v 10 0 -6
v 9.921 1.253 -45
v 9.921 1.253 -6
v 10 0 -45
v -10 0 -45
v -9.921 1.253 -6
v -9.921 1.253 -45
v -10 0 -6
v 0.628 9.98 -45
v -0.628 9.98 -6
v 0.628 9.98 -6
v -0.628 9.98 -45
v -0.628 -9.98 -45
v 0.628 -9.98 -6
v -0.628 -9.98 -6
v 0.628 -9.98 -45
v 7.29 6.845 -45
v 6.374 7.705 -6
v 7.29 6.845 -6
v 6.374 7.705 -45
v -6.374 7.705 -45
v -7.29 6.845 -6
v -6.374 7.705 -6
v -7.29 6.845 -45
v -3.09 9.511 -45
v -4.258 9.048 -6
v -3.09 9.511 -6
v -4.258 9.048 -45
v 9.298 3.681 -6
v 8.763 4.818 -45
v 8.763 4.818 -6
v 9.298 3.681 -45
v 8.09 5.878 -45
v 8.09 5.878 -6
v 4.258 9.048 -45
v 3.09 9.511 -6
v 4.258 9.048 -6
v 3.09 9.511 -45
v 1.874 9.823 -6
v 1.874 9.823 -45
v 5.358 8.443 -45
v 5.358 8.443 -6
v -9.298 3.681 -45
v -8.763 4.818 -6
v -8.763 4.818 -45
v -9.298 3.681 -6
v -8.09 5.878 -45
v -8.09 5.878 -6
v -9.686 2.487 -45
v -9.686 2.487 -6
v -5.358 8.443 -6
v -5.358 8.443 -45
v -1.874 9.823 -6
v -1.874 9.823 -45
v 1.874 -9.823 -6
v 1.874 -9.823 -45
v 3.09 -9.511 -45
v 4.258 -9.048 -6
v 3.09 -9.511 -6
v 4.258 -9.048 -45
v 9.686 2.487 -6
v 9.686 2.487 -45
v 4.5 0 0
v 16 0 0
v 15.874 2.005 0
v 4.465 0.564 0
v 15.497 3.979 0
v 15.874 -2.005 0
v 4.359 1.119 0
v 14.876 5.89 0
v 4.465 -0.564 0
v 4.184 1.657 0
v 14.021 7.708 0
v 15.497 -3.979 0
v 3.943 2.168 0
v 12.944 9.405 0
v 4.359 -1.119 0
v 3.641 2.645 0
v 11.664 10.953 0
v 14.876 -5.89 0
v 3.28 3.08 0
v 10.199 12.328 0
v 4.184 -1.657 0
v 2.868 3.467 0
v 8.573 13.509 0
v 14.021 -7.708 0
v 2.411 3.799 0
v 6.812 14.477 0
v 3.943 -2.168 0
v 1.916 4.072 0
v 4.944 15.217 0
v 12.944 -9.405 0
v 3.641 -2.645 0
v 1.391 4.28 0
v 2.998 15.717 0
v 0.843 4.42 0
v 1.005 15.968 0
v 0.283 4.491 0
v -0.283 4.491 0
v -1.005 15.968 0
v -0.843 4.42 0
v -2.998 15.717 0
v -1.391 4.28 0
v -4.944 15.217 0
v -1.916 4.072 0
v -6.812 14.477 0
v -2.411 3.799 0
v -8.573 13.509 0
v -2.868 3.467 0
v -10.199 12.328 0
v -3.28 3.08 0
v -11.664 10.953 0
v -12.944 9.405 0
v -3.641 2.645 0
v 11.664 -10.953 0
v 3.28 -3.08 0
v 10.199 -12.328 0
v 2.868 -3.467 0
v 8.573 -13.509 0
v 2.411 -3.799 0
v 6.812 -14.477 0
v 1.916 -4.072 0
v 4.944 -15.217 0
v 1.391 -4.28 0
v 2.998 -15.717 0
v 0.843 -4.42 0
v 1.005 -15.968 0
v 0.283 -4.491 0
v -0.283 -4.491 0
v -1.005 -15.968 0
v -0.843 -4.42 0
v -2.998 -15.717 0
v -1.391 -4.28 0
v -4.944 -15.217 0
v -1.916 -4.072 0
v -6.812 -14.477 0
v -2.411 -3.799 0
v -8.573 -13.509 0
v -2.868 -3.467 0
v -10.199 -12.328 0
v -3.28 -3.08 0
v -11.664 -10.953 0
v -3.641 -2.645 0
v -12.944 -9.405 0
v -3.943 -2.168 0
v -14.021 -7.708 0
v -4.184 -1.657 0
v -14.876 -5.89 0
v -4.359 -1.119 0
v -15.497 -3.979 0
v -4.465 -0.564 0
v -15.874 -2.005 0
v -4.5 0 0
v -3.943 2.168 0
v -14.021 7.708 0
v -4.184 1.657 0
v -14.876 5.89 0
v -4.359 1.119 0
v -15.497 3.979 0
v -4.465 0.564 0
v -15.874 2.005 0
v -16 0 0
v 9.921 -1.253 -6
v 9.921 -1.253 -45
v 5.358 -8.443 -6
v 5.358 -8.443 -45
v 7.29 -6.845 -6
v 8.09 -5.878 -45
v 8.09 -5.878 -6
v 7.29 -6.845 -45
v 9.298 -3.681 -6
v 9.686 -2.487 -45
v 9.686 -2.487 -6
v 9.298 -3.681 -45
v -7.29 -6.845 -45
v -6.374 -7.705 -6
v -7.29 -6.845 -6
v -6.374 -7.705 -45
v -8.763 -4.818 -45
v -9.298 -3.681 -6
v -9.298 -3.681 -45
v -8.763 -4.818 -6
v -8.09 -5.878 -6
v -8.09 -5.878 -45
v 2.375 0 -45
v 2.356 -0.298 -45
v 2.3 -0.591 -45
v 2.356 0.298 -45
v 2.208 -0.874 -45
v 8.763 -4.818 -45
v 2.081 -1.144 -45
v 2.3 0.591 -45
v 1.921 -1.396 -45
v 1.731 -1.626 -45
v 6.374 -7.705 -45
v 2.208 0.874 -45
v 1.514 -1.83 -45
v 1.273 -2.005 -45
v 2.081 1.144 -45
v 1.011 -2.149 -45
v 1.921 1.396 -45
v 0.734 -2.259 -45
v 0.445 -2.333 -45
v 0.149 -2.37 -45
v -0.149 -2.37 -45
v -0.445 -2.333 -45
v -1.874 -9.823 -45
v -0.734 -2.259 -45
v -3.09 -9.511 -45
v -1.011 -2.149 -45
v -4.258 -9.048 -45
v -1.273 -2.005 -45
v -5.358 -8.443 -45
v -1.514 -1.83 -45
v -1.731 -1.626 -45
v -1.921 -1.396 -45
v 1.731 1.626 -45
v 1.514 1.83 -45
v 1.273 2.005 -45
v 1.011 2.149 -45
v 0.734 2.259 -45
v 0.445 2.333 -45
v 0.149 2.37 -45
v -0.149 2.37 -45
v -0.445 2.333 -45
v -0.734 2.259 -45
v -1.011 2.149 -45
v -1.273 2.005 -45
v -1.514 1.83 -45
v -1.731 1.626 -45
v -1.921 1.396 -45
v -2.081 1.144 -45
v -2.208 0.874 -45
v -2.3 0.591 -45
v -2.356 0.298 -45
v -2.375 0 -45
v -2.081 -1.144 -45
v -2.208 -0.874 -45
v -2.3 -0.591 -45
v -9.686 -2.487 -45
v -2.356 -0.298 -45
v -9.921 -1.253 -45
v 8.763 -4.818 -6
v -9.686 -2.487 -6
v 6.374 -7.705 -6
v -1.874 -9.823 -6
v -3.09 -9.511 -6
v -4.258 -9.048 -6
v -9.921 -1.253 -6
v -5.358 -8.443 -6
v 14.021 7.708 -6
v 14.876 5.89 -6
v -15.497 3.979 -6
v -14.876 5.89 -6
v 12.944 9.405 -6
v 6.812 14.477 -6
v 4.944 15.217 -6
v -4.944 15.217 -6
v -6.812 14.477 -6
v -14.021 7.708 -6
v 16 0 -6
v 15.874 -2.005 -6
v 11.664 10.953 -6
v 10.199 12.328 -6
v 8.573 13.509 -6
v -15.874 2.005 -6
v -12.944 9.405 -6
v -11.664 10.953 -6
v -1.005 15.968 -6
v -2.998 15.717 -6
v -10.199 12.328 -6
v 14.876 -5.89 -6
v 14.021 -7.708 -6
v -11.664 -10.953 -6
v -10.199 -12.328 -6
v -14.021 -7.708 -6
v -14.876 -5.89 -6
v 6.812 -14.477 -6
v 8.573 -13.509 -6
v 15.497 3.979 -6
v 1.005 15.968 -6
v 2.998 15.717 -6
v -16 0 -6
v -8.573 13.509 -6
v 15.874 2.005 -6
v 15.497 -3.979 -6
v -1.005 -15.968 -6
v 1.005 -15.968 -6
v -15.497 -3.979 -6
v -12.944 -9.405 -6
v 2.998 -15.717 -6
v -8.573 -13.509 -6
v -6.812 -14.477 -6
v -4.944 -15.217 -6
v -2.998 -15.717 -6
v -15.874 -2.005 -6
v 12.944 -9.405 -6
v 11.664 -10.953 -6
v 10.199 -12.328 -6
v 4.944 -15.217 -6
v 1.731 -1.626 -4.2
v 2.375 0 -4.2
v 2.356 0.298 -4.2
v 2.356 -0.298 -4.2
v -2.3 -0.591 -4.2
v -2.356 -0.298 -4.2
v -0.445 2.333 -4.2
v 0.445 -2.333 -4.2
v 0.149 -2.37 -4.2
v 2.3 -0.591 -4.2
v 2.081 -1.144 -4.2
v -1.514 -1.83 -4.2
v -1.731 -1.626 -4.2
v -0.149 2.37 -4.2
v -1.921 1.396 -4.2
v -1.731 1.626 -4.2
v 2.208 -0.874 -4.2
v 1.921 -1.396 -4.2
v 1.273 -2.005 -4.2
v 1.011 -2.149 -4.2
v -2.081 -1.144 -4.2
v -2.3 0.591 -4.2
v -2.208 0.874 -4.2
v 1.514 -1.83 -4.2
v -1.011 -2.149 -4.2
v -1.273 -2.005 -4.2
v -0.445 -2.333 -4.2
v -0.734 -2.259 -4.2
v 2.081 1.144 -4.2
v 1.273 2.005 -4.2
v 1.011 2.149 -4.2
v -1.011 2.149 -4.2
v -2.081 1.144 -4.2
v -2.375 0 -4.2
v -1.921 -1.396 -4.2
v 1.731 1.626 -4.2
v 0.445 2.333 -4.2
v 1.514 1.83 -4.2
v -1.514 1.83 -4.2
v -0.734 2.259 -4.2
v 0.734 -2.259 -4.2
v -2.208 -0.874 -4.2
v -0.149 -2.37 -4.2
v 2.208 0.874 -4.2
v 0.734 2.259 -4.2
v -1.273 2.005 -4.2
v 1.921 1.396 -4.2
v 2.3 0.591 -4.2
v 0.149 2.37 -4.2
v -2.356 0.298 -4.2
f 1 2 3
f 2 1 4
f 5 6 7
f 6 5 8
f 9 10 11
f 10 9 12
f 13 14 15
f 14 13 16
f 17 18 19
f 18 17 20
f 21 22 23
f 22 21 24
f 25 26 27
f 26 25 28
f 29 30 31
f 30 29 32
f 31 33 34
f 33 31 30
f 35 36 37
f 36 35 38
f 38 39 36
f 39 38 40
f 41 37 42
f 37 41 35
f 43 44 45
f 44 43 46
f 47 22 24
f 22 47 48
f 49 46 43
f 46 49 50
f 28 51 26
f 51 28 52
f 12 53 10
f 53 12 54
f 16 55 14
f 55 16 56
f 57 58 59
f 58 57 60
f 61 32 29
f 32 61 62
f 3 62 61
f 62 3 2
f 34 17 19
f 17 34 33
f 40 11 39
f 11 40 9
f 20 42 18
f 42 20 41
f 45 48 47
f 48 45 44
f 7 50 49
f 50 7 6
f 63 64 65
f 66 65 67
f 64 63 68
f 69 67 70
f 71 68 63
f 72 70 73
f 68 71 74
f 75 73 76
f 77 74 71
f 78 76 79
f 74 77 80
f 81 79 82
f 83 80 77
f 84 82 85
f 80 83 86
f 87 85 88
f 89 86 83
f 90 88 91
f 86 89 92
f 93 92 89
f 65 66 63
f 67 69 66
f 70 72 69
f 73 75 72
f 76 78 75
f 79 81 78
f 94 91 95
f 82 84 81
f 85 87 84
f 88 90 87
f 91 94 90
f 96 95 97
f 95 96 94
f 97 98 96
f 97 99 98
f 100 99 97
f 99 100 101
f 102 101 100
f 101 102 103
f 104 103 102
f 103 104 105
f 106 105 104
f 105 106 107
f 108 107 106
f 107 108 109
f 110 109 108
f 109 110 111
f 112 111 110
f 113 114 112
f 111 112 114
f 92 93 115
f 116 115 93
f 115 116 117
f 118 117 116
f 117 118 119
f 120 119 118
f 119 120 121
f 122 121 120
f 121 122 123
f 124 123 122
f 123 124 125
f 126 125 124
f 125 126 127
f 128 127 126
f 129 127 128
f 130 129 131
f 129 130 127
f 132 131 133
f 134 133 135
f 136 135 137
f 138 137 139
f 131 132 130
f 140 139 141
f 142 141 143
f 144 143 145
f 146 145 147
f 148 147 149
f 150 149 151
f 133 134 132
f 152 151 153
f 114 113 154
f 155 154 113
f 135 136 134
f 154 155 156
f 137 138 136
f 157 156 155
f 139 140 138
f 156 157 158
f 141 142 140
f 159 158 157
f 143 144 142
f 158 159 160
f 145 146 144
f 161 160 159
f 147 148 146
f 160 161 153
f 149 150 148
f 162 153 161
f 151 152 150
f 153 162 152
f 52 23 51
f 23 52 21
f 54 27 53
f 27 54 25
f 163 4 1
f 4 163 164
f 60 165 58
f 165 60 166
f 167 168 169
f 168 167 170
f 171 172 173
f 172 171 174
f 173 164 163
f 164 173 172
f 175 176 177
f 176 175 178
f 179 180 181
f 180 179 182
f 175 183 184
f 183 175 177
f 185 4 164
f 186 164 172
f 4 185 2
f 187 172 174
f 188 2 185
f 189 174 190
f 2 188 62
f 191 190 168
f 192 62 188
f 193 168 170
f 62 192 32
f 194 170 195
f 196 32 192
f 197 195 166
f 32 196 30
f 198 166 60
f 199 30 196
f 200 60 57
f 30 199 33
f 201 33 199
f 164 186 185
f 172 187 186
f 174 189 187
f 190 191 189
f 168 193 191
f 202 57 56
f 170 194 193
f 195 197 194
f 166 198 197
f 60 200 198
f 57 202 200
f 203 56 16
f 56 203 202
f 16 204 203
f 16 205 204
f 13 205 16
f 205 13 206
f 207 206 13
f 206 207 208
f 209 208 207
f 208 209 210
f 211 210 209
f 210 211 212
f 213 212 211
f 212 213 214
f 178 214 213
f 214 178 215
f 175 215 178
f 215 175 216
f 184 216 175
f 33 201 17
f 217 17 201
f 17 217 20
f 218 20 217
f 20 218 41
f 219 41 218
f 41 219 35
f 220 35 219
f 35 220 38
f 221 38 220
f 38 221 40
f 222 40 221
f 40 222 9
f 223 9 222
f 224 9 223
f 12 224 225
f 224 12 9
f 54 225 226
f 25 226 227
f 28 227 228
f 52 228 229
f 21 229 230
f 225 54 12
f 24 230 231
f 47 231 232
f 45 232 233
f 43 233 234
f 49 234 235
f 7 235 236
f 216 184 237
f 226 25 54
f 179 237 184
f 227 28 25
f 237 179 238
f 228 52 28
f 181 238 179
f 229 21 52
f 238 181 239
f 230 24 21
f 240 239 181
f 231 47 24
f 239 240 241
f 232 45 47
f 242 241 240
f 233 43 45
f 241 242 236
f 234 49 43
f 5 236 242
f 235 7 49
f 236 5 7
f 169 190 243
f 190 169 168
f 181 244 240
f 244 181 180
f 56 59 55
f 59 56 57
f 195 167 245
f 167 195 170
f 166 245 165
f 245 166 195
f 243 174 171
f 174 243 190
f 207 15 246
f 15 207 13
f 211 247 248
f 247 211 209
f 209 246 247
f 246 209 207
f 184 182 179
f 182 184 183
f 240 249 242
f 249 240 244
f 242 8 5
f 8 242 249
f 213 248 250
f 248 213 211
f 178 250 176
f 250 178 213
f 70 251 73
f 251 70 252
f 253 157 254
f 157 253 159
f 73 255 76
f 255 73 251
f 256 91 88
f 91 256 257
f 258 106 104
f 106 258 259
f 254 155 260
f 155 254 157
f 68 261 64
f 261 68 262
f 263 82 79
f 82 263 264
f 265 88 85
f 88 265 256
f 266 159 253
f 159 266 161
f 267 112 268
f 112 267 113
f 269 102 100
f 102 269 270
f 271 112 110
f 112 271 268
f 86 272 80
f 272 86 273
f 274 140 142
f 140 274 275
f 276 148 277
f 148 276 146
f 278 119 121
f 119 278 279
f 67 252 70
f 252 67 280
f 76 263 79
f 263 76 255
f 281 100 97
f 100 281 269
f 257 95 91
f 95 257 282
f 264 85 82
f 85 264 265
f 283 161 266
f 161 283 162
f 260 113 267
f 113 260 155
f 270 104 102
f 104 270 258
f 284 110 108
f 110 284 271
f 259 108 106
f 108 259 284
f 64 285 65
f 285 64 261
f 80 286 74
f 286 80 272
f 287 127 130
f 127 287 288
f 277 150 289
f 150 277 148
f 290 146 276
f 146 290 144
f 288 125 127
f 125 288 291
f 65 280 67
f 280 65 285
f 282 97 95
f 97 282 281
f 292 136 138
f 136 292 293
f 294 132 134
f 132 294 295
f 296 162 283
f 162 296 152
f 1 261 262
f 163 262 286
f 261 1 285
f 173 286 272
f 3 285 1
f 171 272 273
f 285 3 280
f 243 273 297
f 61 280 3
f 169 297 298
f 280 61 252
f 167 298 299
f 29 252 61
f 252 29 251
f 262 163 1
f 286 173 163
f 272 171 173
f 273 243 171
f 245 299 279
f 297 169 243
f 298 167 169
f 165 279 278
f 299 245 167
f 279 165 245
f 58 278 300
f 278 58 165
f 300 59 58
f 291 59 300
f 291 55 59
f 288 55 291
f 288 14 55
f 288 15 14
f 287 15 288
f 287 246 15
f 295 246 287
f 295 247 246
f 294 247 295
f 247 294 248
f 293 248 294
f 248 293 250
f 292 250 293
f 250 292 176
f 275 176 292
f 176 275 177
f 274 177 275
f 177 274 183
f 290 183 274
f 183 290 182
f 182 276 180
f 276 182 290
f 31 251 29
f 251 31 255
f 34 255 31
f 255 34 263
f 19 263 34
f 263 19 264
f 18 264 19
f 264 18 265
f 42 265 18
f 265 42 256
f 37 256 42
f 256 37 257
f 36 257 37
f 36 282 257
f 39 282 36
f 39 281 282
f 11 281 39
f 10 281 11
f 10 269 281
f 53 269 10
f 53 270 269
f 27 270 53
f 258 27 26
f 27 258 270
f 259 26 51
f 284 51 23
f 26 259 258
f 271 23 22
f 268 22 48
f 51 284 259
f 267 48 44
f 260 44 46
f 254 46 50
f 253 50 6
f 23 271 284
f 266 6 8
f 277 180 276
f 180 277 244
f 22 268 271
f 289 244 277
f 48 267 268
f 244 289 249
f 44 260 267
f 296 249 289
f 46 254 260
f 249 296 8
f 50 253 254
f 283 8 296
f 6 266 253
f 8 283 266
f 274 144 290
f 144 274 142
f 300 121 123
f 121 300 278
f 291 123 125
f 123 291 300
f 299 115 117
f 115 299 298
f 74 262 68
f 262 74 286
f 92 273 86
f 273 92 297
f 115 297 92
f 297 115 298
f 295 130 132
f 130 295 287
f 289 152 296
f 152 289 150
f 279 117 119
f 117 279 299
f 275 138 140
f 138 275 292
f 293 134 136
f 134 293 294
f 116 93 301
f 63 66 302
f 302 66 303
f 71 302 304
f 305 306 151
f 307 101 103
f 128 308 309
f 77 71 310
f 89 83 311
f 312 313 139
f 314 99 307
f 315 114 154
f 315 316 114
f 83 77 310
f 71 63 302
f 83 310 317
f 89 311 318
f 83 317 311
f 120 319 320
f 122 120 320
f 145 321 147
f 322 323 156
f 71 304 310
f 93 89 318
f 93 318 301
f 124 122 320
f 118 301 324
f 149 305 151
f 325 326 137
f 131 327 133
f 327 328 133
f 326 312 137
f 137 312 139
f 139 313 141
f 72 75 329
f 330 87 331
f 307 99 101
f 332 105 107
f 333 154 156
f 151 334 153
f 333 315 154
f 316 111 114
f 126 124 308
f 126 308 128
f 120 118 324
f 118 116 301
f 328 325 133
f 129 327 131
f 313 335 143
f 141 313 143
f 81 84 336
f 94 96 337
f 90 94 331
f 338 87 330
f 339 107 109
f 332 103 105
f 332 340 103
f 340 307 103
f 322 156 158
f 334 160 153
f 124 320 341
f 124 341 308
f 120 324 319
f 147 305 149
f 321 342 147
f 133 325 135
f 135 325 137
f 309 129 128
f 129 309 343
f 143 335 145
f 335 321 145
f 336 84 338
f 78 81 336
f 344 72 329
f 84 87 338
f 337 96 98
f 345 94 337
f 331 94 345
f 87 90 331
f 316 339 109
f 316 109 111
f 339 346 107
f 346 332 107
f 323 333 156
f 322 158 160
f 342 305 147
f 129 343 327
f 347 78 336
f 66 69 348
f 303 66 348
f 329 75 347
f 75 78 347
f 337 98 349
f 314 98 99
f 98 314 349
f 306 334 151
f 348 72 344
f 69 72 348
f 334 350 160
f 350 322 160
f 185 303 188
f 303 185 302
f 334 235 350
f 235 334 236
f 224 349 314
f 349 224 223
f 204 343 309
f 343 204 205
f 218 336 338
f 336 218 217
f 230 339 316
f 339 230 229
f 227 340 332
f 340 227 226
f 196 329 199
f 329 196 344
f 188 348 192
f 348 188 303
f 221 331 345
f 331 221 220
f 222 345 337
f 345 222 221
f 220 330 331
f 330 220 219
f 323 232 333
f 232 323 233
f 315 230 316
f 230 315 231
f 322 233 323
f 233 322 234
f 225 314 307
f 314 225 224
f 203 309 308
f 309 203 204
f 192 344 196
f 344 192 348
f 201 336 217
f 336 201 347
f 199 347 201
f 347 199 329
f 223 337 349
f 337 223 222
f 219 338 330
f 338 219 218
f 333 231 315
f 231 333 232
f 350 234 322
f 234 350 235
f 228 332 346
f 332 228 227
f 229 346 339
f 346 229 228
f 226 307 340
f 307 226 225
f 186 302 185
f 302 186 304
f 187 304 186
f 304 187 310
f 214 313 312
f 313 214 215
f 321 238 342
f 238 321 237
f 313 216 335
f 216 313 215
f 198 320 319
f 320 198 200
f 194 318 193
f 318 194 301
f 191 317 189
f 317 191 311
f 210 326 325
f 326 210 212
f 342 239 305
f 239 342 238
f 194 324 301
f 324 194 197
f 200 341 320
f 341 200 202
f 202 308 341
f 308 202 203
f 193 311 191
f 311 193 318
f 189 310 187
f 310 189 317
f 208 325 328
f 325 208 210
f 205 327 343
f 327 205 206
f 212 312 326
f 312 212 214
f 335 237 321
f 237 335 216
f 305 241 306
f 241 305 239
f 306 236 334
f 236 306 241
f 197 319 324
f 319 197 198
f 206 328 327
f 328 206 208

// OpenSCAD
$fn = 50;


difference() {
	union() {
		translate(v = [0, 0, -45.0000000000]) {
			cylinder(h = 45, r = 10.0000000000);
		}
		translate(v = [0, 0, -6.0000000000]) {
			cylinder(h = 6, r = 16.0000000000);
		}
	}
	union() {
		translate(v = [0, 0, 0]) {
			rotate(a = [0, 0, 0]) {
				difference() {
					union() {
						#translate(v = [0, 0, -45.0000000000]) {
							cylinder(h = 45, r = 2.2500000000);
						}
						#translate(v = [0, 0, -4.2000000000]) {
							cylinder(h = 4.2000000000, r = 10.0000000000, r1 = 2.3750000000, r2 = 4.5000000000);
						}
						#translate(v = [0, 0, -45.0000000000]) {
							cylinder(h = 45, r = 2.3750000000);
						}
						#translate(v = [0, 0, -45.0000000000]) {
							cylinder(h = 45, r = 2.2500000000);
						}
					}
					union();
				}
			}
		}
	}
}
